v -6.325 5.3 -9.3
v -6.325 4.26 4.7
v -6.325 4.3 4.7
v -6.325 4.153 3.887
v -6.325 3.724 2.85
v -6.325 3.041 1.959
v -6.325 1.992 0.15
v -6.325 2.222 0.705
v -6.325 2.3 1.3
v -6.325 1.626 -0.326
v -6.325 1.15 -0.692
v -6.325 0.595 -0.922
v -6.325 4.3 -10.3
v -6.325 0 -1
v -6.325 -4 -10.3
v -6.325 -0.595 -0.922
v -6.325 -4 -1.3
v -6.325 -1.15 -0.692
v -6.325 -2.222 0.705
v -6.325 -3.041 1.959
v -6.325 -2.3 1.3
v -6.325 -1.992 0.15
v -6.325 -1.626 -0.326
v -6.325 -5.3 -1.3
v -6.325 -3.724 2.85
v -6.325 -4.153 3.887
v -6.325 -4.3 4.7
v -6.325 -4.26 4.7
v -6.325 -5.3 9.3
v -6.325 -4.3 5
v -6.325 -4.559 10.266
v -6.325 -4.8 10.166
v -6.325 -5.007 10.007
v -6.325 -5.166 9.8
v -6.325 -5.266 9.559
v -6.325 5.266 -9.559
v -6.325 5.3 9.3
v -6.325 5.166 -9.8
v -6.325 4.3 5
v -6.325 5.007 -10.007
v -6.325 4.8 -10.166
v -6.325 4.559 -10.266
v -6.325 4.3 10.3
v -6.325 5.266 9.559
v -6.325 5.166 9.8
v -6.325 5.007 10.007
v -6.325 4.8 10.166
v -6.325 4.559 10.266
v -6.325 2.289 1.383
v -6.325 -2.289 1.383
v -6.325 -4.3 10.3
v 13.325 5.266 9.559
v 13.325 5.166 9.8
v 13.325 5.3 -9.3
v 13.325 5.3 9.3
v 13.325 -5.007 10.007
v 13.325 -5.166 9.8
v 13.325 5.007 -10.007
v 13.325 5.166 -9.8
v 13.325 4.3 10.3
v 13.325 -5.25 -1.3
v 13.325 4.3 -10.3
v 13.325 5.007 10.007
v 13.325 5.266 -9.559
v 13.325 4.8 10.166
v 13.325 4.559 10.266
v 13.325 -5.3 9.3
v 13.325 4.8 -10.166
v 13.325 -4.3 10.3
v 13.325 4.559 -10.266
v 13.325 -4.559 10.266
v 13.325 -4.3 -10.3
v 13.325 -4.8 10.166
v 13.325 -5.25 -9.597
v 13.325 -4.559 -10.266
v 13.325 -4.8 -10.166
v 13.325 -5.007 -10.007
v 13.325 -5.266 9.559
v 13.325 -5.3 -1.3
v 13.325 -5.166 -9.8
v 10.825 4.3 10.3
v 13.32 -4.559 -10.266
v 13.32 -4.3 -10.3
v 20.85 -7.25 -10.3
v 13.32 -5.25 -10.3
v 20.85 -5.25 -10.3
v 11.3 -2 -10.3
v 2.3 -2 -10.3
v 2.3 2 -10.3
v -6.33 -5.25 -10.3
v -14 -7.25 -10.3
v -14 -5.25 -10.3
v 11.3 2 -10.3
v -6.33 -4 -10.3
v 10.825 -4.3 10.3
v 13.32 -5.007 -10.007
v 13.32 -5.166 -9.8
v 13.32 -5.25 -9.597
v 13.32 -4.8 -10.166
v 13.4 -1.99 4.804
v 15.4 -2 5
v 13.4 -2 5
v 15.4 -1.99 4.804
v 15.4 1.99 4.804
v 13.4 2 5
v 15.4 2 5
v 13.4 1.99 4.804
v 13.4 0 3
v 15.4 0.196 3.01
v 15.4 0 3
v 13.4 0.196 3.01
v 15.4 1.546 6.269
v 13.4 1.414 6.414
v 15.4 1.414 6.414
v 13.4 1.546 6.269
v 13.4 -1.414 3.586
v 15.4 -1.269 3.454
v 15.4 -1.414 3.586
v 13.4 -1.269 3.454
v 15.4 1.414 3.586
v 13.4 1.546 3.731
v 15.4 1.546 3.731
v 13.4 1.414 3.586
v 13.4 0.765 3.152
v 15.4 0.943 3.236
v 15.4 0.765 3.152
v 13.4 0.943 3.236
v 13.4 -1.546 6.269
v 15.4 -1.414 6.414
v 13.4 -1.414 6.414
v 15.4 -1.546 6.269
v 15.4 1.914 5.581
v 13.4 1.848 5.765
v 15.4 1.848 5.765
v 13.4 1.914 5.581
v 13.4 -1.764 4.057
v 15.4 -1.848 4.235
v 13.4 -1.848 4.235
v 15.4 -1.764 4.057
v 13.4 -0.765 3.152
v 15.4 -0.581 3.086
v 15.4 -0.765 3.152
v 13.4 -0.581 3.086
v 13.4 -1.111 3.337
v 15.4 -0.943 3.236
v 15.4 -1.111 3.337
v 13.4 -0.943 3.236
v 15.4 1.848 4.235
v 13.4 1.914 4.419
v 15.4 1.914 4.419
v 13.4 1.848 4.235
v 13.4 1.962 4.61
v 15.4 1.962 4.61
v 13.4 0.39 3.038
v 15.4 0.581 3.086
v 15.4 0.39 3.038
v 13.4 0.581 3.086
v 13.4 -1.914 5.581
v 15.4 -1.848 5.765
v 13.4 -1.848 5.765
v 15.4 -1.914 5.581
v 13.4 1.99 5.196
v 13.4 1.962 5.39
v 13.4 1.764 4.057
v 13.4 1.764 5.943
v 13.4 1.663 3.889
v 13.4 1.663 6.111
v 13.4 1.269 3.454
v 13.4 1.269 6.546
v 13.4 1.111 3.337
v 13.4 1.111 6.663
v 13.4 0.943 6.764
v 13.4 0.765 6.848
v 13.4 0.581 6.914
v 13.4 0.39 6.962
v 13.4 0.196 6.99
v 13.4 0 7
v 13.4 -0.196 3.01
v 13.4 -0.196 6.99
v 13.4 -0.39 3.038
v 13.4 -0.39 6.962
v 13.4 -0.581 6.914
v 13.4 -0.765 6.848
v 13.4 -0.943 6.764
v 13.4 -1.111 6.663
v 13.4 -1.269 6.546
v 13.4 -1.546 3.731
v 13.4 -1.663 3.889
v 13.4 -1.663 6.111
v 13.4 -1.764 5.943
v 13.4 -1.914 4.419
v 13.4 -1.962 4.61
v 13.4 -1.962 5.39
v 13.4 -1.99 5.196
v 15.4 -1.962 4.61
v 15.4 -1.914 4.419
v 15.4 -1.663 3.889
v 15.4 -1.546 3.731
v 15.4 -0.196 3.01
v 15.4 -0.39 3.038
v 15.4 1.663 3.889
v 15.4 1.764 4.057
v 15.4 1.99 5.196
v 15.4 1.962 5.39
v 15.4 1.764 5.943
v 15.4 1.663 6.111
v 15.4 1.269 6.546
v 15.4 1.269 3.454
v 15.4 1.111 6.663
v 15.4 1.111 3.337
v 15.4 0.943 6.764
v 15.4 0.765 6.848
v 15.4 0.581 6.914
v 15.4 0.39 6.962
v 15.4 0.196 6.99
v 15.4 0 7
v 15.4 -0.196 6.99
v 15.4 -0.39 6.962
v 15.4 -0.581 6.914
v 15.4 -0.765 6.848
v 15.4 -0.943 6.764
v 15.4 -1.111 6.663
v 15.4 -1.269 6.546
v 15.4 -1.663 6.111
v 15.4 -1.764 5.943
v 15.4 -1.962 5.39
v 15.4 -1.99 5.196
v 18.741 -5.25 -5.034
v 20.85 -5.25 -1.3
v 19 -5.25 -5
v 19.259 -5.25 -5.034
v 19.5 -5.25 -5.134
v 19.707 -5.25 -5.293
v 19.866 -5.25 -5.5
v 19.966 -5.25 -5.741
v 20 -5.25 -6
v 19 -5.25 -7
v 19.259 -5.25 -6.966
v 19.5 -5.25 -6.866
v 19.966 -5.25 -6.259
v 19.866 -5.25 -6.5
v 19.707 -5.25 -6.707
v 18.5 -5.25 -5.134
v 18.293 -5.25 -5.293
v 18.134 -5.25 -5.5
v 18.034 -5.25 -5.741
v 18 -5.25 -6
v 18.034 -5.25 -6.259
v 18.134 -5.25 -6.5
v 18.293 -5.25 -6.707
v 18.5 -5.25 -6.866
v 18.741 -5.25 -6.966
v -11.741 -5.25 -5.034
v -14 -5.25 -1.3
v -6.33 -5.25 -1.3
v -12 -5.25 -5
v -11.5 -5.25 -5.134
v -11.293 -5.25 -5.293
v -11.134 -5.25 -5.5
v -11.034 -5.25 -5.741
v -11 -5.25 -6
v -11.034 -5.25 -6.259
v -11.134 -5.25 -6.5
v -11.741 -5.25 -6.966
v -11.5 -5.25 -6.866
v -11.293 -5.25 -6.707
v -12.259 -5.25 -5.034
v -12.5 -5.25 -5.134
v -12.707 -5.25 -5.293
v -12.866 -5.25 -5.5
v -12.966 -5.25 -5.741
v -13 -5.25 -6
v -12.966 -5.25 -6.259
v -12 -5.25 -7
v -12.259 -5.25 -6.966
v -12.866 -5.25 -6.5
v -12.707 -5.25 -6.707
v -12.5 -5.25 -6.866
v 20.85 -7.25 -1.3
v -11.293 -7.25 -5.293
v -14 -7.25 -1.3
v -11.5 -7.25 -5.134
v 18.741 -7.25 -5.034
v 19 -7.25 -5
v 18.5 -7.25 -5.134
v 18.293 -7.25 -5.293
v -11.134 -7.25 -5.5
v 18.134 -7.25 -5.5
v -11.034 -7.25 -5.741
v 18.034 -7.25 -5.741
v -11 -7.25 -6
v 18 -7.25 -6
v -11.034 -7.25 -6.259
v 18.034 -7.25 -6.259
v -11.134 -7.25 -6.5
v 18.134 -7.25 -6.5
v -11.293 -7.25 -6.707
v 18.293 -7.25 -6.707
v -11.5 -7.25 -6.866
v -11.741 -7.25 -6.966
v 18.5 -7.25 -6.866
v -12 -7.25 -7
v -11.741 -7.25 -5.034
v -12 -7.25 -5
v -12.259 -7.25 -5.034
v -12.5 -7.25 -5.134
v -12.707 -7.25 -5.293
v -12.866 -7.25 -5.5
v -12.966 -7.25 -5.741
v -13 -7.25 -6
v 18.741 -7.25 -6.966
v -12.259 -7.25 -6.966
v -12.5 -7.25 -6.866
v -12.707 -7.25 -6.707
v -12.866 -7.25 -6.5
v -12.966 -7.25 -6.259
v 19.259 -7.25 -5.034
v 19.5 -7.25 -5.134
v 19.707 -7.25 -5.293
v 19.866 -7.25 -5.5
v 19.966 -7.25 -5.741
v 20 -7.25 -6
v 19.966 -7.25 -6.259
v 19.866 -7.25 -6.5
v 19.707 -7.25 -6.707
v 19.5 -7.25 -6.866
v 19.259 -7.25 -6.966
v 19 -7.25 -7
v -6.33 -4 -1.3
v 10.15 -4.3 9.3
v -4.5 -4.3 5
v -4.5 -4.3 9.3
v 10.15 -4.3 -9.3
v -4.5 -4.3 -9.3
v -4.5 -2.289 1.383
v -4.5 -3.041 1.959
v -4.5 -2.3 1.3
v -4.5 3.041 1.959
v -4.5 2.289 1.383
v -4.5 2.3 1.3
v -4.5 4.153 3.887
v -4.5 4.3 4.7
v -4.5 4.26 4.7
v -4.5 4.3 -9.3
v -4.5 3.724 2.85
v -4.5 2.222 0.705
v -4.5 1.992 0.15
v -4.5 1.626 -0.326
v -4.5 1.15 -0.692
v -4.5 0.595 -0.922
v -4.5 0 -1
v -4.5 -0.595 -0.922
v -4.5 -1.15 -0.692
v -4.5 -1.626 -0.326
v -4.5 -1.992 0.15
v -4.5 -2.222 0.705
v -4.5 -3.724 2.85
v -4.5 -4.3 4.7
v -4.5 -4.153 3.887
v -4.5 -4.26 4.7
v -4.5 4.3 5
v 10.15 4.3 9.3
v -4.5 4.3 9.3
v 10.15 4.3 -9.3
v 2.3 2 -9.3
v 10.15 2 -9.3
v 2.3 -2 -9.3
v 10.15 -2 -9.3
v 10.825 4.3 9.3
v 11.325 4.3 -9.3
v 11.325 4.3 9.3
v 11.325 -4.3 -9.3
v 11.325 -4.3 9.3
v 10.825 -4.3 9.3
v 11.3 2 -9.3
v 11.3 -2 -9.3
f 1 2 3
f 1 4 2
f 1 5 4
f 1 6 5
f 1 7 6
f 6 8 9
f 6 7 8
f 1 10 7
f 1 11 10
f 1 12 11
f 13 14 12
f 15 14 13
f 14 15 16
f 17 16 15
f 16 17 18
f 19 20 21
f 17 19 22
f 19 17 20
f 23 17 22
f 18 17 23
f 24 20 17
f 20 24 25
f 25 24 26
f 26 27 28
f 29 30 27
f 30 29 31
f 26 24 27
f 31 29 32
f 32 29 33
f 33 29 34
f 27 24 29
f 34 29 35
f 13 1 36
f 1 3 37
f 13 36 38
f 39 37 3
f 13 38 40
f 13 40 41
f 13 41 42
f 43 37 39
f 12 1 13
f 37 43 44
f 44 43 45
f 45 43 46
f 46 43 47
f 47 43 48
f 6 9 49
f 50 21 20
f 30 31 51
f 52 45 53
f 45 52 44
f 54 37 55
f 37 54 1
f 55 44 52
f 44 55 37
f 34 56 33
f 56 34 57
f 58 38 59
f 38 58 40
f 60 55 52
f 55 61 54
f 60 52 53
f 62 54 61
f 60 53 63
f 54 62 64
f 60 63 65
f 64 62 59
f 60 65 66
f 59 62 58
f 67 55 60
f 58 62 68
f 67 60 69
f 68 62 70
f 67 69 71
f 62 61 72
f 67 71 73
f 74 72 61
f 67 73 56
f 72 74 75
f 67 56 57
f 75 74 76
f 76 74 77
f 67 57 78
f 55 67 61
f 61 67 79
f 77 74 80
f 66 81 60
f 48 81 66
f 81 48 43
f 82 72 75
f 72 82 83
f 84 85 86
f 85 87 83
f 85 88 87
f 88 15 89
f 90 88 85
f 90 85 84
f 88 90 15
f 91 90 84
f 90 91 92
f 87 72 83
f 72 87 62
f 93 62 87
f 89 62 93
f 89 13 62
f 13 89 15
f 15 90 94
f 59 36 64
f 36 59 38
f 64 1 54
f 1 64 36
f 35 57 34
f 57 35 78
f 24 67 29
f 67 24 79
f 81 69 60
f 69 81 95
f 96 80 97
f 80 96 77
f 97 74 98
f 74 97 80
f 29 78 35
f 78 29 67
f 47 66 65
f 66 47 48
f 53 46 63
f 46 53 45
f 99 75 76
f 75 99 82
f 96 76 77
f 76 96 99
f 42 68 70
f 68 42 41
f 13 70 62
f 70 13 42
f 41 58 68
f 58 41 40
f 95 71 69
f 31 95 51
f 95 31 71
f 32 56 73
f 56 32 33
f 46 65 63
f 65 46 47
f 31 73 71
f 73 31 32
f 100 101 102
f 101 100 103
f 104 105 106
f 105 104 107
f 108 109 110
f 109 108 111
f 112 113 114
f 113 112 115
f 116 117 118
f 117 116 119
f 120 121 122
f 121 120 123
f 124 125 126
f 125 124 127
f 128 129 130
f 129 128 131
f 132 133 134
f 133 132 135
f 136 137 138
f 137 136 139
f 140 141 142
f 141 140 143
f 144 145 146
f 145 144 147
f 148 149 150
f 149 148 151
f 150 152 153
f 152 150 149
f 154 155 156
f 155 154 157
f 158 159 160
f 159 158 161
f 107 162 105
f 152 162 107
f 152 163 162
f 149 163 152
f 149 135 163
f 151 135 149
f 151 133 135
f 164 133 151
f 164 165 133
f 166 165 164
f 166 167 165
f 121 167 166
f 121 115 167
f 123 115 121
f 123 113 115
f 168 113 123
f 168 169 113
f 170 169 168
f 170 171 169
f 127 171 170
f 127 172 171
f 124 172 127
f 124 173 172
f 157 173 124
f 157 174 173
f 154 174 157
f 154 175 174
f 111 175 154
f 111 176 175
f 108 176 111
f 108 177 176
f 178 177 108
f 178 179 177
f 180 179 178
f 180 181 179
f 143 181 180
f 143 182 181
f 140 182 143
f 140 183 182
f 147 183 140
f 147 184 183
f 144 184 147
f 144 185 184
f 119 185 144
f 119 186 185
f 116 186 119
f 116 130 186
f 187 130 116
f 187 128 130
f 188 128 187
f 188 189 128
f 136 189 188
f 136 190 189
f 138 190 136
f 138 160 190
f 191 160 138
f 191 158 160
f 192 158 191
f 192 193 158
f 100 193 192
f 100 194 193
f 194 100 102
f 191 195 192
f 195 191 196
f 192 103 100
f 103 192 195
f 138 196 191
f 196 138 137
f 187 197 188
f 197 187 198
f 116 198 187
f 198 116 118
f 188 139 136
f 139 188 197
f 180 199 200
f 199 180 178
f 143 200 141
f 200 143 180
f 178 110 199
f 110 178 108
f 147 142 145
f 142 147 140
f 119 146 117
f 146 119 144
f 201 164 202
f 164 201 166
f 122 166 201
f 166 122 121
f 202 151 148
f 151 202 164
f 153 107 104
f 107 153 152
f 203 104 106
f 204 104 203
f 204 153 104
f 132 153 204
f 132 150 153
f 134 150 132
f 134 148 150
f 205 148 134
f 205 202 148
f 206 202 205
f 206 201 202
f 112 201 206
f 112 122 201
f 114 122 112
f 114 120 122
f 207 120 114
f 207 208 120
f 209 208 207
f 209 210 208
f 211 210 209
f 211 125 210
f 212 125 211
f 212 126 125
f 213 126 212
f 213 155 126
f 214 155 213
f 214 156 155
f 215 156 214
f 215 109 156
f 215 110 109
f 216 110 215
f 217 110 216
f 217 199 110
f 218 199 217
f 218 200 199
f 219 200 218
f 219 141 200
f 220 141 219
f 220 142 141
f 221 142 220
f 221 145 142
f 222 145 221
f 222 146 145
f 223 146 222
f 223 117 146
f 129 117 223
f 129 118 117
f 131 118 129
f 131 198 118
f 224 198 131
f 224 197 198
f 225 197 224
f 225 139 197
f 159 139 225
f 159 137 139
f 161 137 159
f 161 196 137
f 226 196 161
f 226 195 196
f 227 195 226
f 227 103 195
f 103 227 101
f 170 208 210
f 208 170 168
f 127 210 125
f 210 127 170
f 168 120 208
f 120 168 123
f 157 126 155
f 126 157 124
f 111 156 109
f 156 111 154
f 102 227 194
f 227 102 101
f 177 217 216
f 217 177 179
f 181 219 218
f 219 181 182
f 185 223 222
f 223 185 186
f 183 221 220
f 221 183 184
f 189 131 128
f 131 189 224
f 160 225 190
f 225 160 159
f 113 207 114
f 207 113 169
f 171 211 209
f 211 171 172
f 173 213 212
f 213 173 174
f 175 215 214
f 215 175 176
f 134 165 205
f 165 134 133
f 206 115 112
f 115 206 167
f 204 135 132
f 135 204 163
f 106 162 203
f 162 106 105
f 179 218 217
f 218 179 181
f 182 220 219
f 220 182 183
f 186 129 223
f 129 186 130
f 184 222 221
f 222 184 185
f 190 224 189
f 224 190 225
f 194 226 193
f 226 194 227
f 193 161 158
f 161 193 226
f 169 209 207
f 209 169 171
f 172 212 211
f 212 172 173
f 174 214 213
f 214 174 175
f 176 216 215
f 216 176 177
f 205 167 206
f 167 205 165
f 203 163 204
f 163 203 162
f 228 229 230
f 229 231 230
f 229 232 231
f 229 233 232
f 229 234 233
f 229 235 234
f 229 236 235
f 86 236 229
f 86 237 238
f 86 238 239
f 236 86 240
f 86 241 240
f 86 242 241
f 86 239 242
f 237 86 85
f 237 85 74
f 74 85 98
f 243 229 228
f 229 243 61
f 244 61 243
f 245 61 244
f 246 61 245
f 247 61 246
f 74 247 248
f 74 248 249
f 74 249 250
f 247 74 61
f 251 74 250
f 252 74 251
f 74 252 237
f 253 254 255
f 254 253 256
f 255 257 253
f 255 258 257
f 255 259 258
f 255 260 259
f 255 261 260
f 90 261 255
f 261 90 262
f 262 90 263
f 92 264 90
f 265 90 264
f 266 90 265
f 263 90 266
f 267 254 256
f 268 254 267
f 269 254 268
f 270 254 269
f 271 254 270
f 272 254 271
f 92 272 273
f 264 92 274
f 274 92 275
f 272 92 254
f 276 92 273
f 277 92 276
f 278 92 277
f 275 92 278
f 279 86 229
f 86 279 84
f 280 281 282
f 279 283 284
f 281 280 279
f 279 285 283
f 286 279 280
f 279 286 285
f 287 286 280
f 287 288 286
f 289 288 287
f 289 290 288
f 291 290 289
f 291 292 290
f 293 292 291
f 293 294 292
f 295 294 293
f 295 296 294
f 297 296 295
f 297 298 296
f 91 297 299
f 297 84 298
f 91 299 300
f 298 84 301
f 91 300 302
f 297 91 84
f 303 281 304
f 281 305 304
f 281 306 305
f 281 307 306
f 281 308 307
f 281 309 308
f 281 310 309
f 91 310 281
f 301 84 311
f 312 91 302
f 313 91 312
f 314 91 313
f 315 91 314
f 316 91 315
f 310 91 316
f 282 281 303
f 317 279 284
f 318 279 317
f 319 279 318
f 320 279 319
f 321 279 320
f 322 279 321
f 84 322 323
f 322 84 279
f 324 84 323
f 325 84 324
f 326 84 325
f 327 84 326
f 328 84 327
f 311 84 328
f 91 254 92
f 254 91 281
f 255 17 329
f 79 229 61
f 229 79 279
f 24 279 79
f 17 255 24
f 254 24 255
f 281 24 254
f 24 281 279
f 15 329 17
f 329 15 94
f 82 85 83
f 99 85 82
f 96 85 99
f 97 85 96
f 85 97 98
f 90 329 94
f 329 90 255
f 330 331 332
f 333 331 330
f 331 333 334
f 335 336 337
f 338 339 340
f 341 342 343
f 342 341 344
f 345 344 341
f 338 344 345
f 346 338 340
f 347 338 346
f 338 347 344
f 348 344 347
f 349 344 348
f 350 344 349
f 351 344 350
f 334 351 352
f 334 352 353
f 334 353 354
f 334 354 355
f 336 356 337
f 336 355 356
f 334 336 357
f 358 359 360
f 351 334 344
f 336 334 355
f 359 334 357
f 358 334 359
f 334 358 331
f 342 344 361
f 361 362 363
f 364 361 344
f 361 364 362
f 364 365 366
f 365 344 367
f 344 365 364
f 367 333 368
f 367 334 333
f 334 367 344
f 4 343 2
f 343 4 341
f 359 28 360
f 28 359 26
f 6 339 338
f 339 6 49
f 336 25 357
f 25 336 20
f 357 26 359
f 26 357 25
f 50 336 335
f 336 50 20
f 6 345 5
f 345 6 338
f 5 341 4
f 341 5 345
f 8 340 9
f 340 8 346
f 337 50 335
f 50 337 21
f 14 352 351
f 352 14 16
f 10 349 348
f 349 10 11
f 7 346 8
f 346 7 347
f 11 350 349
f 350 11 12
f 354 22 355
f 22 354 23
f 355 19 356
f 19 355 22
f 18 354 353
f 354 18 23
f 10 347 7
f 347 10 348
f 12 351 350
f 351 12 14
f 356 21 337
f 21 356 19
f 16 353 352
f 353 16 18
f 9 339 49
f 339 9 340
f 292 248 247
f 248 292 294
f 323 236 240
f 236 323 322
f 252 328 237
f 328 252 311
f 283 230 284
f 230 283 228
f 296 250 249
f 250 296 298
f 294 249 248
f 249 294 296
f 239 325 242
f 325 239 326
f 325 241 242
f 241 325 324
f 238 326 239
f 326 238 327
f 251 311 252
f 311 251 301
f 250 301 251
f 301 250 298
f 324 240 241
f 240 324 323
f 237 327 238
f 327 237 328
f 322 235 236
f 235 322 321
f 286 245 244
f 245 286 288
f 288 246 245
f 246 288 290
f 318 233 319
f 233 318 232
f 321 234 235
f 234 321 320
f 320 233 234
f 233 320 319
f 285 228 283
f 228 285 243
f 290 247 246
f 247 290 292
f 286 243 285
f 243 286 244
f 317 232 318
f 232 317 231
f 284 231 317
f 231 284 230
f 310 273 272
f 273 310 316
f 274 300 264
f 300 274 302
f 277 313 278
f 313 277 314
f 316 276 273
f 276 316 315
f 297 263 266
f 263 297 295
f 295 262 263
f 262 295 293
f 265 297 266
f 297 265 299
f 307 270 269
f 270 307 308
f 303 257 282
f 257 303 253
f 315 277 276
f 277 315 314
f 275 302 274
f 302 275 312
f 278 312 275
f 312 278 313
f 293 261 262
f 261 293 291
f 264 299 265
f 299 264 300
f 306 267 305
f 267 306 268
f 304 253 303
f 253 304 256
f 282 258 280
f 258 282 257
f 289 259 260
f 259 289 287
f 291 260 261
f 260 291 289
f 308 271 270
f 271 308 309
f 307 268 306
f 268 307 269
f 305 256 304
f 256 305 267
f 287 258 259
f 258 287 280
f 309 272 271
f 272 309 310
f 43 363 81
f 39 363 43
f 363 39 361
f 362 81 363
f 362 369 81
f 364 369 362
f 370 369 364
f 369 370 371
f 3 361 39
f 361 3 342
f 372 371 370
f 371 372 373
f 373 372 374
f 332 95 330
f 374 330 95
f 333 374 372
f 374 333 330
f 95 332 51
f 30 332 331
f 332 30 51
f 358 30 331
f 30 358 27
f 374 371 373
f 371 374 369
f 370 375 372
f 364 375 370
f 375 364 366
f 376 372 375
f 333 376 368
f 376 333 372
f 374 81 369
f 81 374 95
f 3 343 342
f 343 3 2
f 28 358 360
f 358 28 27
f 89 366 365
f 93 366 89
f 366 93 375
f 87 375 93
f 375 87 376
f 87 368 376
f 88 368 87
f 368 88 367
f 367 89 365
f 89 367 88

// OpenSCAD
// file: config.scad
//Parameters for servo_lx16a
$fn = 24;
//x,y,z => l,w,h


servo_l         = 45.20; 
servo_w         = 24.70; 
body_h          = 32;

servo_h         = 35;

hub_offset      = 10.10;

rad = 2;


w_between_holes = 20.5;
l_between_top_holes = 20.7;
l_between_bottom_holes = 24.45;
top_hole_l_offset = 6.1;
bottom_hole_l_offset = 2.35;

hole_dia = 1.6;
attach_screw_l = 5;

top_hub_carve_h = 2.6;
bottom_hub_carve_h = 3.4;

top_attach_carve_h = 1.1;
bottom_attach_carve_h = 1.9;

hub_carve_r = 10.8;

hub_r = 10.1;

w_between_ridges = 19.5;

top_horn_h = 3.20;
bottom_horn_h = 3.85;

top_horn_r = 3.15;
bottom_horn_r = 3;



hub_h           = 4;
small_hub_r     = 6.15/2;  
horn_r          = 4.66/2;
horn_h          = 3;

wire_l          = 4;
wire_w          = 1.5;
wire_h          = 1;
wire_place      = 4.8;
// file: electronics.scad
$fn=100;

//on_off_switch();

//pi_zero();

//translate ([0,100,0])
//pca9685();

//dc_dc();

//pi_camera();



module header(pins, rows){
  color("darkgrey") cube([2.54*pins,2.54*rows,1.27]);
  
  color("gold")
  for(x=[0:pins-1],y=[0:rows-1])
    translate([x*2.54+(1.27+.6)/2,y*2.54+(1.27+.6)/2,-3.5]) cube([0.6,0.6,11.5]);
}


module pi_zero(){
    // PCB
    color("limegreen") difference(){
        hull(){
            translate([-(65-6)/2,-(30-6)/2,0]) cylinder(r=3, h=1.4 );
            translate([-(65-6)/2, (30-6)/2,0]) cylinder(r=3, h=1.4 );
            translate([ (65-6)/2,-(30-6)/2,0]) cylinder(r=3, h=1.4 );
            translate([ (65-6)/2, (30-6)/2,0]) cylinder(r=3, h=1.4 );
        }
        
        translate([-65/2+3.5,-30/2+3.5,-1]) cylinder(d=2.75, h=3);
        translate([-65/2+3.5, 30/2-3.5,-1]) cylinder(d=2.75, h=3);
        translate([65/2-3.5,-30/2+3.5,-1]) cylinder(d=2.75, h=3);
        translate([65/2-3.5, 30/2-3.5,-1]) cylinder(d=2.75, h=3);
    }
    
    // Header
    translate([-10*2.54,30/2-2.54-3.5,1.4])
    header(20,2);
    
    translate([-65/2,-30/2,1.4]){
        color("silver"){
        
            // micro USB
            translate([41-8/2,-1.5,0]) cube([8,6,2.6]);
            translate([54-8/2,-1.5,0]) cube([8,6,2.6]);        
            
            // HDMI
            translate([6.9,-1.5,0]) cube([13,7,3]);
        }
    
        color("darkgrey"){
        
            // Camera
            translate([64-4/2,7.1,0]) cube([4,16,2.5]);
        }
    
        // Micro SD Card
        color("silver") translate([0,8.6,-0]) cube([13,14,1.5]);    
        color("darkgrey") translate([-2.4,10.1,0]) cube([2.4,11,1]);
    }
}



module pca9685(withHeader=true){  
  
    // PCB
    color("limegreen") difference(){
        translate([0,0,0]) hull(){
            translate([-(62.5-6)/2,-(25.4-6)/2,0]) cylinder(r=3, h=1.4 );
            translate([-(62.5-6)/2, (25.4-6)/2,0]) cylinder(r=3, h=1.4 );
            translate([ (62.5-6)/2,-(25.4-6)/2,0]) cylinder(r=3, h=1.4 );
            translate([ (62.5-6)/2, (25.4-6)/2,0]) cylinder(r=3, h=1.4 );
        }
        
        translate([-55.9/2,-18.8/2,-1]) cylinder(d=2.75, h=3);
        translate([-55.9/2, 18.8/2,-1]) cylinder(d=2.75, h=3);
        translate([55.9/2,-18.8/2,-1]) cylinder(d=2.75, h=3);
        translate([55.9/2, 18.8/2,-1]) cylinder(d=2.75, h=3);
    } 
    
    
    // capacitor
    color("silver")
    translate([-(62.5/2)+17.1,(25.4-8.3)/2,1.4])
    cylinder(d=8.3, h=12.7);
    
    //power connector
    color("blue")
    translate([-(62.5/2)+25.1+2.54*2,(25.4-8.3)/2,1.4])
    cube([2.54*2,4,8]);
    
    // Header top
    translate([-(62.5/2)+5.65,-25.4/2,1.4])
    header(4,3);
    
    translate([2.25,-25.4/2,1.4])
    header(4,3);
    
    translate([-2.25-2.54*4,-25.4/2,1.4])
    header(4,3);
    
    translate([62.5/2-5.65-2.54*4,-25.4/2,1.4])
    header(4,3);
    
    translate([62.5/2,-25.4/2+5.08,1.4])
    rotate([0,0,90])
    header(6,1);
    
    translate([-62.5/2+2.54,-25.4/2+5.08,1.4])
    rotate([0,0,90])
    header(6,1);

  
}

module dc_dc(){
    
    // PCB
    color("limegreen") difference(){
        translate([0,0,0]) hull(){
            translate([-(24.5-6)/2,-(48-6)/2,0]) cylinder(r=3, h=1.4 );
            translate([-(24.5-6)/2, (48-6)/2,0]) cylinder(r=3, h=1.4 );
            translate([ (24.5-6)/2,-(48-6)/2,0]) cylinder(r=3, h=1.4 );
            translate([ (24.5-6)/2, (48-6)/2,0]) cylinder(r=3, h=1.4 );
        }
      
        translate([0,0,-1]) {
            
            //translate([-17/2,-35/2,0])
            //cylinder(d=3.15, h=2.5);
            
            translate([-17/2,35/2, 0])
            cylinder(d=3.15, h=2.5);
            
            translate([17/2,-35/2, 0])
            cylinder(d=3.15, h=2.5);
            
            //translate([17/2,35/2, 0])
            //cylinder(d=3.15, h=2.5); 
          
        }


    } 
    
    
    // capacitors
    color("darkblue")
    translate([-(24.5/2)+12.1,(48-8)/2,1.4])
    cylinder(d=8, h=10);
    
    color("darkblue")
    translate([-(24.5/2)+12.1,-(48-8)/2,1.4])
    cylinder(d=8, h=10);
    
    //toroid
    
    difference(){
        
        color("orange")
        translate([(24.5/2)-22.1+9,(48-30)/2,1.4])
        cylinder(d=12, h=7.6);
        
        color("orange")
        translate([(24.5/2)-22.1+9,(48-30)/2,0.5])
        cylinder(d=6, h=11);

        
    }
    
    
    //potentiometer
    color("blue")
    translate([24.5/2-2,-48/2+9,1.4])
    rotate([0,0,90])
    cube([5,10,11]);
    
    
    //IC
    color("black")
    translate([24.5/2-8,-48/2+15,1.4])
    rotate([0,0,90])
    cube([11,11,5]);
    
    
}


module on_off_switch(){
    
    union(){
        
        color("silver")
        translate([-8/2, -4/2, 0])
        cube([8, 4, 3.8]);
        
        color("black")
        translate([-1.5/2, -1.5/2, 3.8])
        cube([1.5, 1.5, 3]);
        
        color("silver")
        translate([-0.5/2, -0.5/2, -3.2])
        cube([0.5, 0.5, 3.2]);
        
        color("silver")
        translate([-0.5/2-2.5, -0.5/2, -3.2])
        cube([0.5, 0.5, 3.2]);
        
        color("silver")
        translate([-0.5/2+2.5, -0.5/2, -3.2])
        cube([0.5, 0.5, 3.2]);
        
        
        
        
    }
    
}


module pi_camera(){
    difference(){
        union(){
            color("limegreen")
            translate([-25.5/2, -24.5/2, 0])
            cube([25.5, 24.5, 0.9]);
            
            
            //camera sensor
            color("darkgrey")
            translate([-8.5/2, -8.5/2+2.4, 0.9])
            cube([8.5, 8.5, 3.5]);
            
            color("darkgrey")
            translate([0, 2.4, 0.9+3.5])
            cylinder(d=8, h=0.75, $fn=32);
        
            color("darkgrey")
            translate([0, 2.4, 0.9+3.5+0.75])
            cylinder(d=6, h=0.75, $fn=32);
            
            color("darkgrey")
            translate([0, 2.4, 0.9+3.5+0.75+0.75])
            cylinder(d1=2, d2=5, h=2, $fn=32);
            
            //sensor connector
            color("orange")
            translate([-8.5/2, -8.5/2+2.4-10.5, 0.9])
            cube([8.5, 10.5, 2.5]);
            
            //led
            color("white")
            translate([-20/2, -8.5/2+2.4-7, 0.9])
            cube([20, 3, 1]);            
            
            
            //connector
            color("white")
            translate([-20.8/2, -5.5+24/2, -2.4])
            cube([20.8, 5.5, 2.4]);
            
            
    
        }
          
        translate([-21/2,-20/2,-1]) cylinder(d=2.1, h=3);
        translate([-21/2, 20/2-7.5,-1]) cylinder(d=2.1, h=3);
        translate([21/2,-20/2,-1]) cylinder(d=2.1, h=3);
        translate([21/2, 20/2-7.5,-1]) cylinder(d=2.1, h=3);
    }
    
    
}
// file: servo_5g.scad
include <Config.scad>

servo_5g();


$fn = 24;
//x,y,z => l,w,h


module servo_5g() {
  
    translate([-servo5_l/2, -servo5_w/2, -body5_h/2-hub5_h/2-horn5_h/2]) {
    
        color("white") 
        translate([servo5_l/2,servo5_l/2,body5_h+hub5_h])
        cylinder(r=horn5_r,h=horn5_h);
        
        color("deepSkyBlue",.7) //deepSkyBlue
        union() {
            cube([servo5_l,servo5_w,body5_h]);
            translate([servo5_l/2,servo5_l/2,body5_h])
            cylinder(r=servo5_l/2,h=hub5_h);
            translate([servo5_l/2,servo5_l/2+3.7,body5_h])
            cylinder(r=small_hub5_r,h=hub5_h);
            
        }
    }
}
// file: servo_12g.scad
include <config.scad>


servo_12g();


$fn = 24;
//x,y,z => l,w,h


module servo_12g() {
  
    translate([-servo_l/2, -servo_w/2, -body_h/2-hub_h/2-horn_h/2]) {
    
        color("white") 
        translate([servo_l/2,servo_l/2,body_h+hub_h])
        cylinder(r=horn_r,h=horn_h);
        
        color("deepSkyBlue",.7) //deepSkyBlue
        union() {
            cube([servo_l,servo_w,body_h]);
            translate([servo_l/2,servo_l/2,body_h])
            cylinder(r=servo_l/2,h=hub_h);
            translate([servo_l/2,servo_l/2+6.30,body_h])
            cylinder(r=small_hub_r,h=hub_h);
            
        }
    }
}

module roundedRect(size, radius)
{
x = size[0];
y = size[1];
z = size[2];

translate([x/2+radius/2, y/2+radius/2, 0]){
linear_extrude(height=z)
hull()
{
// place 4 circles in the corners, with the given radius
translate([(-x/2)+(radius/2), (-y/2)+(radius/2), 0])
circle(r=radius);

translate([(x/2)-(radius/2), (-y/2)+(radius/2), 0])
circle(r=radius);

translate([(-x/2)+(radius/2), (y/2)-(radius/2), 0])
circle(r=radius);

translate([(x/2)-(radius/2), (y/2)-(radius/2), 0])
circle(r=radius);
}
}
}
// file: Config.scad
//Parameters for 12g servo
$fn = 24;
//x,y,z => l,w,h

tap_r = 0.85;
hole_r = 1.0;

servo_l         = 12;  // was 12
servo_w         = 24;  // was 23
body_h          = 20.80;

servo_h         = 27; //not used in code was 27

wing_w          = 4.5;
wing_h          = 2.33;
wing_place      = 16.3;   
hole_offset     = 2.2;    //not checked
mount_hole_r    = 2/2;
mount_slot      = 1;

servo_ww        = servo_w+wing_w*2; // not used in code but is handy number

hub_h           = 4;
small_hub_r     = 6.15/2;  
horn_r          = 4.66/2;
horn_h          = 3;

wire_l          = 4;
wire_w          = 1.5;
wire_h          = 1;
wire_place      = 4.8;

servo_full_w    = servo_w+wing_w*2;

rad = 2;




//Parameters for 5g servo

servo5_l         = 8.6; 
servo5_w         = 18.6; 
body5_h          = 14.65;


hub5_h = 2.15;
small_hub5_r = 4.6/2;  
horn5_r = 4.66/2;
horn5_h = 3;

servo5_h         = body5_h+hub5_h+horn5_h;

mount_x = servo5_l + 2;
mount_y = servo5_w + 2;
mount_round = 1;
servo_tol = 0.2;
servo5_x     = servo5_l + servo_tol*2; //~12
servo5_y     = servo5_w + servo_tol*8; //~23
// main file
include <Config.scad>
use <servo_12g.scad>
use <servo_5g.scad>
use <electronics.scad>


rotate([0, 90, 0])
rotate([0, 0, -90])
Citro6_53();


module Citro6_53(){

echo("mount_y: ", mount_y);
    
    mount5_x = servo5_l + 2;
    mount5_y = servo5_w + 2;
    mount_round = 1;
    servo_tol = 0.2;
    

difference() {
        union() {
            translate([-mount5_x/2,-mount5_y/2,-body5_h/2+1])
            roundedRect([mount5_x-mount_round,mount5_y-mount_round,body5_h+5], mount_round);
            
            translate([0, -5, body5_h-1.25])
            cylinder(d=4, h=2, $fn=64);
            
            //bracket to attach to head
            translate([5.25, 1.3, -14])
            cube([2, 9, mount5_y+14.25]); 
            
            translate([4, 1.3, -6.33])
            cube([2, 9, mount5_y-0.95]);
            
        }
    translate([0,0,4])
    cube([servo5_l, servo5_w, body5_h], center=true);
        
    translate([0,-9-5,1.5])
    cube([servo5_l, servo5_w, body5_h+4], center=true);
        
    
    
    translate([0,0,0.25])
    //translate([(mount5_x-servo5_y)/2+servo5_y-4*servo_tol,(mount5_y-servo5_l)/2,2])
    rotate([0,180,0])
    servo_5g(false);
        
    translate([0,9+1,6.8])
    cube([4, 5, 9], center=true);
        
    
    
    ////translate([(mount5_x-servo_y)/2+servo_y-4*servo_tol,(mount5_y-servo_l)/2,2])
    //translate([8,servo_l+2,2])
    //rotate([0,0,-90])
    //servo_60g(false);
    
    translate([4.5, 0.5, 3.5]) rotate([0, 90, 0]) {
        
            translate([-31/2, 26/2-7.5,-1]) 
            cylinder(d=2, h=5);
                        
            translate([31/2, 26/2-7.5,-1]) 
            cylinder(d=2, h=5);
    }


    
}
}
